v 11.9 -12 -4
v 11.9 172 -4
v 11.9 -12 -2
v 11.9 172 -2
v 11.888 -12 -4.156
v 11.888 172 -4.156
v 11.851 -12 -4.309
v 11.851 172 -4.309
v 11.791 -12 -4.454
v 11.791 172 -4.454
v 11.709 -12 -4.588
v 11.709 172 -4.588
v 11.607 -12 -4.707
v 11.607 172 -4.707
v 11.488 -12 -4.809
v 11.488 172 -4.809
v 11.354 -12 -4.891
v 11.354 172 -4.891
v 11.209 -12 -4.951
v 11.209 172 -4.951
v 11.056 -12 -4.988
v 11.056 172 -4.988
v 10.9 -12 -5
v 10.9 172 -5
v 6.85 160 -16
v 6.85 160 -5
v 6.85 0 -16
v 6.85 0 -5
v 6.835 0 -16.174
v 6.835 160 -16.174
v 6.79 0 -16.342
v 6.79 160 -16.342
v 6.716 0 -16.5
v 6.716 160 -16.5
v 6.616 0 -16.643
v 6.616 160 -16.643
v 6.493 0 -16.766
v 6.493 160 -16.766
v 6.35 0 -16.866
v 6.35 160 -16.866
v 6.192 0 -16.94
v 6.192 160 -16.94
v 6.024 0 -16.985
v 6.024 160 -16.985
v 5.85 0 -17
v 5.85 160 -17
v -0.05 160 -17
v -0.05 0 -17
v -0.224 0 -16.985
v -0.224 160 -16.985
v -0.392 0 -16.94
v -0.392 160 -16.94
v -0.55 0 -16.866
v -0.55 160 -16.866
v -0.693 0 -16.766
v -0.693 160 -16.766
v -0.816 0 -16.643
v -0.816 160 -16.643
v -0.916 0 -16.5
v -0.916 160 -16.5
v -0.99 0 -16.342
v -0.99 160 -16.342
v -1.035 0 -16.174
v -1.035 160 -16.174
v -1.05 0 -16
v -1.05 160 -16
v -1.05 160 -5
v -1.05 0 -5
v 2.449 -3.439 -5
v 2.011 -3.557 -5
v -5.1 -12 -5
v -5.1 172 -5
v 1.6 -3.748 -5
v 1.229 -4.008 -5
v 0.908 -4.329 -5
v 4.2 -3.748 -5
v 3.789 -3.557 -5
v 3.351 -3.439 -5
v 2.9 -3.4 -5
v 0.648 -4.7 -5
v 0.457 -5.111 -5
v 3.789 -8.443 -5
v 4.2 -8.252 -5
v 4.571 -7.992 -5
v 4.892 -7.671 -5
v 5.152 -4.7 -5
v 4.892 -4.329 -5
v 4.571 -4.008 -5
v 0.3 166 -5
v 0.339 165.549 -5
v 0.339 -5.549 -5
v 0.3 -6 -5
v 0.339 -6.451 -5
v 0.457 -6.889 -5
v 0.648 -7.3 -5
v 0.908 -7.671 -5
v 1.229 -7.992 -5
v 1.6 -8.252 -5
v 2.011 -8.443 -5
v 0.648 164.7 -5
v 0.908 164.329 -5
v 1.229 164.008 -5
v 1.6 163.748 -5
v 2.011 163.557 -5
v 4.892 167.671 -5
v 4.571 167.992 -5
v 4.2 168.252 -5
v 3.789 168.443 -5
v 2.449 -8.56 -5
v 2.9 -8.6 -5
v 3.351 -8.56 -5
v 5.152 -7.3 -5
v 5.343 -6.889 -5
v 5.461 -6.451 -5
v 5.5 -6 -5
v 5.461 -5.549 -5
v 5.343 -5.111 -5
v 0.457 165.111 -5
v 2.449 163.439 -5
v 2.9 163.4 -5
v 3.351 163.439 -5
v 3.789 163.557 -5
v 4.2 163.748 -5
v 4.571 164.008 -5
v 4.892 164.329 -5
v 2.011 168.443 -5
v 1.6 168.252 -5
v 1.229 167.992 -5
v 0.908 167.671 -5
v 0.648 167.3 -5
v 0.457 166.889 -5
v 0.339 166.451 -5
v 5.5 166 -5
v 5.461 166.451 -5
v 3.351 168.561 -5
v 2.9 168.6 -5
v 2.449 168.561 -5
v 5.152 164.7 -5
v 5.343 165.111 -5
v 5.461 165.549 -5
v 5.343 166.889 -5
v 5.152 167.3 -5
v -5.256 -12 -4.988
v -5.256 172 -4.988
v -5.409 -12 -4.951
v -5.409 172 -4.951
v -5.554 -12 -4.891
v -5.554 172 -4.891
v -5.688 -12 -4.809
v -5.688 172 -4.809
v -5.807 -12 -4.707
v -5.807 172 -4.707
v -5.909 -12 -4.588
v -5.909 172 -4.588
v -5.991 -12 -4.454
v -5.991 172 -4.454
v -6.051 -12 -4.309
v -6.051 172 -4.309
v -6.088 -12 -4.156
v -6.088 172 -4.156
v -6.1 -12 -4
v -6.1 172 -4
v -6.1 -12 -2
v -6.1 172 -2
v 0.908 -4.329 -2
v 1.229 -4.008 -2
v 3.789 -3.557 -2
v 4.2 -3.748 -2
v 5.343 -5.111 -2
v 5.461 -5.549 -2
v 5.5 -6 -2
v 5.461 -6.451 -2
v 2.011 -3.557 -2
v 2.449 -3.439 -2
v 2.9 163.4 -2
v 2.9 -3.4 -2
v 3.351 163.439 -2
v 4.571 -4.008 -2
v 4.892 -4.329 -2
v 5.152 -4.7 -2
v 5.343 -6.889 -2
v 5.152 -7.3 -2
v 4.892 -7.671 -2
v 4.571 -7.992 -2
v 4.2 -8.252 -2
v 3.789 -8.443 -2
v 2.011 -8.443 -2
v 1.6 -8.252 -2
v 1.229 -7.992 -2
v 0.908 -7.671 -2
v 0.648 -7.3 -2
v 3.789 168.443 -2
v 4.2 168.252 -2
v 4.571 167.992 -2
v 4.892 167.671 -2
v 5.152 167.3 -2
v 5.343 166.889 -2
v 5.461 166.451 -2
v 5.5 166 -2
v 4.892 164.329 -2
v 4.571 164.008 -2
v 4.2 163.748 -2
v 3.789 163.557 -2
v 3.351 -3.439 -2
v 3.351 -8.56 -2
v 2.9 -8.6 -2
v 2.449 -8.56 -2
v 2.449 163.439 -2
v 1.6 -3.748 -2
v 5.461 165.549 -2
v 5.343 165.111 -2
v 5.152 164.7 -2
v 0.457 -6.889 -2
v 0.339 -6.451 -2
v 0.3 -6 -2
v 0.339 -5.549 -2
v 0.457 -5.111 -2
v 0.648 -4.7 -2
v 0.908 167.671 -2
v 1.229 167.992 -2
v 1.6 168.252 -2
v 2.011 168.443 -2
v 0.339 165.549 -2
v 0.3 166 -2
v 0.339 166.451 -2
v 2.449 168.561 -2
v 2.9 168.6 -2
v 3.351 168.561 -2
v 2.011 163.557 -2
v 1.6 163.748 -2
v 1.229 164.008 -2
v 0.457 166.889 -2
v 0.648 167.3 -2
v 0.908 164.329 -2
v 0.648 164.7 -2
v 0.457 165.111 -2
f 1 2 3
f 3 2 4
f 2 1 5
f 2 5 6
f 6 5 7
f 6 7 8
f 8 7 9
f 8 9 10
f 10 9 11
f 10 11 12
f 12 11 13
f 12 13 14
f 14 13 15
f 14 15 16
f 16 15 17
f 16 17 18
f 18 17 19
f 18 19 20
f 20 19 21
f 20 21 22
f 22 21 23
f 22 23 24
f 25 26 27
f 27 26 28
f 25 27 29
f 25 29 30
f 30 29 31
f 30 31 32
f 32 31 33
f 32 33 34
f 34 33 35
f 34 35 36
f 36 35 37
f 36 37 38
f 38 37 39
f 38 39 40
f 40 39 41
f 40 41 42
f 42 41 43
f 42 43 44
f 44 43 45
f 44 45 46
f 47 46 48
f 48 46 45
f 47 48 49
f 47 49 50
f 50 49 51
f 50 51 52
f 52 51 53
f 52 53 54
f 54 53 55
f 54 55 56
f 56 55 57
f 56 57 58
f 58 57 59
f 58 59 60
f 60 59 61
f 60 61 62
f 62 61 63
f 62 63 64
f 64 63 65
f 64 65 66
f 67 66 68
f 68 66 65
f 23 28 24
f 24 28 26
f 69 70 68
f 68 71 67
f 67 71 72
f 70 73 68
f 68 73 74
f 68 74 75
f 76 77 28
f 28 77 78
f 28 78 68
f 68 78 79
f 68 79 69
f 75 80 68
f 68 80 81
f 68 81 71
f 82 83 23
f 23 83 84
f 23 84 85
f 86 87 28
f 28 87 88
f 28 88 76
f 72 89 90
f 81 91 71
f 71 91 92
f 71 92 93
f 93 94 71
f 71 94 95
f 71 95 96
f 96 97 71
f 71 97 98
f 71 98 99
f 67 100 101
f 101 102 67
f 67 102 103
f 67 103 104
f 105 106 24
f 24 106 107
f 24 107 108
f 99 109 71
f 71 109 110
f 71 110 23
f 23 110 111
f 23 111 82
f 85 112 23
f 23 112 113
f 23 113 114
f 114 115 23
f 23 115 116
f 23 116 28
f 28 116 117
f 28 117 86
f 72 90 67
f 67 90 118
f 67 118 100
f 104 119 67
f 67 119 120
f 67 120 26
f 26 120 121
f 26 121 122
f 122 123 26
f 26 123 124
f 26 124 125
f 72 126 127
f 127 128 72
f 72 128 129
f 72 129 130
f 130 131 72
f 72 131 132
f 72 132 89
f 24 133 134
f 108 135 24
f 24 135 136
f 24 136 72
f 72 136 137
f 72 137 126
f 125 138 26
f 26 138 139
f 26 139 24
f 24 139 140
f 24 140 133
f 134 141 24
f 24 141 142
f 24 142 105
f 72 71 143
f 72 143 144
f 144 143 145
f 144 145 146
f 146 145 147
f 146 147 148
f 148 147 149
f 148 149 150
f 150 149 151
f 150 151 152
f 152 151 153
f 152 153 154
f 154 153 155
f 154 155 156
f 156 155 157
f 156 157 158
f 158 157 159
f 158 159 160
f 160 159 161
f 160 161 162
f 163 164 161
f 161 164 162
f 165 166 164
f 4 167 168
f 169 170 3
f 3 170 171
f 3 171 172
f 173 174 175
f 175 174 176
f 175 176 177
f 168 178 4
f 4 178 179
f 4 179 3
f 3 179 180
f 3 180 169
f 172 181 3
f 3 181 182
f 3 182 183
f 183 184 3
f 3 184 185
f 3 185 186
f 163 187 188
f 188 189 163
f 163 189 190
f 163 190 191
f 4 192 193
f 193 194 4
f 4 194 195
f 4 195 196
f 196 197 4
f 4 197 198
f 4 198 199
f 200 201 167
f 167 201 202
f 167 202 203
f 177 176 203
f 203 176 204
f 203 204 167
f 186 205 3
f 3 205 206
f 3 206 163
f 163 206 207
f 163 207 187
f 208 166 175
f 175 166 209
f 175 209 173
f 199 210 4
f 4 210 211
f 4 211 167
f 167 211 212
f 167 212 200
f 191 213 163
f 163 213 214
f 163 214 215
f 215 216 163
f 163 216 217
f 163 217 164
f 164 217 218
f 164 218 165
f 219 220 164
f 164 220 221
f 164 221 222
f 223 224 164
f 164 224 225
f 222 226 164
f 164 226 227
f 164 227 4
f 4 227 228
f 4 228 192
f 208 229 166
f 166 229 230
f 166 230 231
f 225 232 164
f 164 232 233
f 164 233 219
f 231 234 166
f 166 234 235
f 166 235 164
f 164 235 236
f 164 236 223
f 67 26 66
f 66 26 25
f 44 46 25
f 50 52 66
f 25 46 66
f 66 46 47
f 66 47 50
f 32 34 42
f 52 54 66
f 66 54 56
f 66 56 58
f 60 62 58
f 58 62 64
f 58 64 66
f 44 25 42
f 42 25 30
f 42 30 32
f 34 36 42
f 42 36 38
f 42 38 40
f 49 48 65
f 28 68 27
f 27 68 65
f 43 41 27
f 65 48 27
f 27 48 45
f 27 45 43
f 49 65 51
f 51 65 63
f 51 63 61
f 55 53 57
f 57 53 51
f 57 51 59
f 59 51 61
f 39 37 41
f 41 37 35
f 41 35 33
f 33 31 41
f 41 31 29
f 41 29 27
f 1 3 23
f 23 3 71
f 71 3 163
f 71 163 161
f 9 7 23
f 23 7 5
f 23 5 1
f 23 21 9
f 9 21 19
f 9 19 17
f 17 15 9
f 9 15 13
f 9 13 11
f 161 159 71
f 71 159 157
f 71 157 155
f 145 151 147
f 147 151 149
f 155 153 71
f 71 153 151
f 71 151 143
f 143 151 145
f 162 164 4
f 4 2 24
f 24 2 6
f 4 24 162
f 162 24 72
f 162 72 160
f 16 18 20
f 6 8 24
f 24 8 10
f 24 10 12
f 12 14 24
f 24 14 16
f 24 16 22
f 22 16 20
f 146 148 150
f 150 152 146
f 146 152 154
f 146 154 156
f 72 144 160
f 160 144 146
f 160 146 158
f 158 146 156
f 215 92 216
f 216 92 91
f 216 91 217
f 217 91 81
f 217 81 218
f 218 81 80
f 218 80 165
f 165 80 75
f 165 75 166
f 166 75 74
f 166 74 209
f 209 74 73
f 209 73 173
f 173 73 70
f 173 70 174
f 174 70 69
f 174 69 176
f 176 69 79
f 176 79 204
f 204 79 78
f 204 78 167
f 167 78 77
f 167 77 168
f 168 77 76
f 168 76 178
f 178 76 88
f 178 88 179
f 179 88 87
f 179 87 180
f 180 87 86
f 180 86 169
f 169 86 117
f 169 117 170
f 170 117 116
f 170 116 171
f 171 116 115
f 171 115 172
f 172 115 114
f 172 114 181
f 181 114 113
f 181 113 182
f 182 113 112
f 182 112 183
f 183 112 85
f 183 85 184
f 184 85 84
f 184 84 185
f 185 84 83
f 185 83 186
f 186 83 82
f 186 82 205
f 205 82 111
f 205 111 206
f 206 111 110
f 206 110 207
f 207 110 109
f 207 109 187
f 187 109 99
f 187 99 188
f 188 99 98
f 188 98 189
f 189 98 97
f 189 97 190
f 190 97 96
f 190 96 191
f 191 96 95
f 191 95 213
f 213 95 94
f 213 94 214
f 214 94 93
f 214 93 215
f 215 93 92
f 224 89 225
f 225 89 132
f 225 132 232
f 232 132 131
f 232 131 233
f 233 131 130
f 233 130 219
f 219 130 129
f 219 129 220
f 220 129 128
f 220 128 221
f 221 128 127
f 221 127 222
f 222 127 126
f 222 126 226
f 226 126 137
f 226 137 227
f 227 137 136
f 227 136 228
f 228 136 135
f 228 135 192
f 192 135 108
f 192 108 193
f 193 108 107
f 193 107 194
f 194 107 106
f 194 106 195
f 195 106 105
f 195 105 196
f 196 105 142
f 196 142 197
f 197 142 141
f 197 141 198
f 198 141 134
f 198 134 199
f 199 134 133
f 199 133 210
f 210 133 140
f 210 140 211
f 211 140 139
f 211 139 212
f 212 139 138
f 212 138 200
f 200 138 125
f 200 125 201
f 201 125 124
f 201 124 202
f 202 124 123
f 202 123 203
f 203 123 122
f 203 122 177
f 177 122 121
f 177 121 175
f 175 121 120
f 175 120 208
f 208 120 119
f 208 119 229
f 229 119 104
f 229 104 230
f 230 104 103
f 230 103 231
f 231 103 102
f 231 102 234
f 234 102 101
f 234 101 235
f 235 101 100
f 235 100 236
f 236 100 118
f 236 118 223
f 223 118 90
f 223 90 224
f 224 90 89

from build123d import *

# Parameters (mm, degrees)
BOSS_EXTRUDE1_DEPTH = 160
BOSS_EXTRUDE2_START = 12
BOSS_EXTRUDE2_DEPTH = 12
BOSS_EXTRUDE3_START = -160
BOSS_EXTRUDE3_DEPTH = 12
SKETCH3_R           = 2.6
CUT_EXTRUDE1_DEPTH  = 12


with BuildPart() as part:
    # Sketch1 → Boss-Extrude1 (new body)
    with BuildSketch(Plane(origin=(0, 0, 0), x_dir=(1, 0, 0), z_dir=(0, 1, 0))):
        with BuildLine():
            Line((0, 2), (-6.1, 2))
            Line((-6.1, 2), (-6.1, 4))
            ThreePointArc((-6.1, 4), (-5.807106781, 4.707106781), (-5.1, 5))
            Line((-5.1, 5), (-1.05, 5))
            Line((-1.05, 5), (-1.05, 16))
            ThreePointArc((-1.05, 16), (-0.757106781, 16.707106781), (-0.05, 17))
            Line((-0.05, 17), (5.85, 17))
            ThreePointArc((5.85, 17), (6.557106781, 16.707106781), (6.85, 16))
            Line((6.85, 16), (6.85, 5))
            Line((6.85, 5), (10.9, 5))
            ThreePointArc((10.9, 5), (11.607106781, 4.707106781), (11.9, 4))
            Line((11.9, 4), (11.9, 2))
            Line((11.9, 2), (0, 2))
        make_face()
    extrude(amount=BOSS_EXTRUDE1_DEPTH)

    # Sketch2 → Boss-Extrude2 (add)
    with BuildSketch(Plane.XZ.offset(BOSS_EXTRUDE2_START)):
        with BuildLine():
            Line((11.9, -2), (-6.1, -2))
            Line((-6.1, -2), (-6.1, -4))
            ThreePointArc((-6.1, -4), (-5.807106781, -4.707106781), (-5.1, -5))
            Line((-5.1, -5), (10.9, -5))
            ThreePointArc((10.9, -5), (11.607106781, -4.707106781), (11.9, -4))
            Line((11.9, -4), (11.9, -2))
        make_face()
    extrude(amount=-BOSS_EXTRUDE2_DEPTH)

    # Sketch2<2> → Boss-Extrude3 (add)
    with BuildSketch(Plane.XZ.offset(BOSS_EXTRUDE3_START)):
        with BuildLine():
            Line((11.9, -2), (-6.1, -2))
            Line((-6.1, -2), (-6.1, -4))
            ThreePointArc((-6.1, -4), (-5.807106781, -4.707106781), (-5.1, -5))
            Line((-5.1, -5), (10.9, -5))
            ThreePointArc((10.9, -5), (11.607106781, -4.707106781), (11.9, -4))
            Line((11.9, -4), (11.9, -2))
        make_face()
    extrude(amount=-BOSS_EXTRUDE3_DEPTH)

    # Sketch3 → Cut-Extrude1 (cut)
    with BuildSketch(Plane(origin=(0, 0, -5), x_dir=(-1, 0, 0), z_dir=(0, 0, -1))):
        with Locations((-2.9, 166)):
            Circle(SKETCH3_R)
        with Locations((-2.9, -6)):
            Circle(SKETCH3_R)
    extrude(amount=-CUT_EXTRUDE1_DEPTH, mode=Mode.SUBTRACT)


solid = part.part
